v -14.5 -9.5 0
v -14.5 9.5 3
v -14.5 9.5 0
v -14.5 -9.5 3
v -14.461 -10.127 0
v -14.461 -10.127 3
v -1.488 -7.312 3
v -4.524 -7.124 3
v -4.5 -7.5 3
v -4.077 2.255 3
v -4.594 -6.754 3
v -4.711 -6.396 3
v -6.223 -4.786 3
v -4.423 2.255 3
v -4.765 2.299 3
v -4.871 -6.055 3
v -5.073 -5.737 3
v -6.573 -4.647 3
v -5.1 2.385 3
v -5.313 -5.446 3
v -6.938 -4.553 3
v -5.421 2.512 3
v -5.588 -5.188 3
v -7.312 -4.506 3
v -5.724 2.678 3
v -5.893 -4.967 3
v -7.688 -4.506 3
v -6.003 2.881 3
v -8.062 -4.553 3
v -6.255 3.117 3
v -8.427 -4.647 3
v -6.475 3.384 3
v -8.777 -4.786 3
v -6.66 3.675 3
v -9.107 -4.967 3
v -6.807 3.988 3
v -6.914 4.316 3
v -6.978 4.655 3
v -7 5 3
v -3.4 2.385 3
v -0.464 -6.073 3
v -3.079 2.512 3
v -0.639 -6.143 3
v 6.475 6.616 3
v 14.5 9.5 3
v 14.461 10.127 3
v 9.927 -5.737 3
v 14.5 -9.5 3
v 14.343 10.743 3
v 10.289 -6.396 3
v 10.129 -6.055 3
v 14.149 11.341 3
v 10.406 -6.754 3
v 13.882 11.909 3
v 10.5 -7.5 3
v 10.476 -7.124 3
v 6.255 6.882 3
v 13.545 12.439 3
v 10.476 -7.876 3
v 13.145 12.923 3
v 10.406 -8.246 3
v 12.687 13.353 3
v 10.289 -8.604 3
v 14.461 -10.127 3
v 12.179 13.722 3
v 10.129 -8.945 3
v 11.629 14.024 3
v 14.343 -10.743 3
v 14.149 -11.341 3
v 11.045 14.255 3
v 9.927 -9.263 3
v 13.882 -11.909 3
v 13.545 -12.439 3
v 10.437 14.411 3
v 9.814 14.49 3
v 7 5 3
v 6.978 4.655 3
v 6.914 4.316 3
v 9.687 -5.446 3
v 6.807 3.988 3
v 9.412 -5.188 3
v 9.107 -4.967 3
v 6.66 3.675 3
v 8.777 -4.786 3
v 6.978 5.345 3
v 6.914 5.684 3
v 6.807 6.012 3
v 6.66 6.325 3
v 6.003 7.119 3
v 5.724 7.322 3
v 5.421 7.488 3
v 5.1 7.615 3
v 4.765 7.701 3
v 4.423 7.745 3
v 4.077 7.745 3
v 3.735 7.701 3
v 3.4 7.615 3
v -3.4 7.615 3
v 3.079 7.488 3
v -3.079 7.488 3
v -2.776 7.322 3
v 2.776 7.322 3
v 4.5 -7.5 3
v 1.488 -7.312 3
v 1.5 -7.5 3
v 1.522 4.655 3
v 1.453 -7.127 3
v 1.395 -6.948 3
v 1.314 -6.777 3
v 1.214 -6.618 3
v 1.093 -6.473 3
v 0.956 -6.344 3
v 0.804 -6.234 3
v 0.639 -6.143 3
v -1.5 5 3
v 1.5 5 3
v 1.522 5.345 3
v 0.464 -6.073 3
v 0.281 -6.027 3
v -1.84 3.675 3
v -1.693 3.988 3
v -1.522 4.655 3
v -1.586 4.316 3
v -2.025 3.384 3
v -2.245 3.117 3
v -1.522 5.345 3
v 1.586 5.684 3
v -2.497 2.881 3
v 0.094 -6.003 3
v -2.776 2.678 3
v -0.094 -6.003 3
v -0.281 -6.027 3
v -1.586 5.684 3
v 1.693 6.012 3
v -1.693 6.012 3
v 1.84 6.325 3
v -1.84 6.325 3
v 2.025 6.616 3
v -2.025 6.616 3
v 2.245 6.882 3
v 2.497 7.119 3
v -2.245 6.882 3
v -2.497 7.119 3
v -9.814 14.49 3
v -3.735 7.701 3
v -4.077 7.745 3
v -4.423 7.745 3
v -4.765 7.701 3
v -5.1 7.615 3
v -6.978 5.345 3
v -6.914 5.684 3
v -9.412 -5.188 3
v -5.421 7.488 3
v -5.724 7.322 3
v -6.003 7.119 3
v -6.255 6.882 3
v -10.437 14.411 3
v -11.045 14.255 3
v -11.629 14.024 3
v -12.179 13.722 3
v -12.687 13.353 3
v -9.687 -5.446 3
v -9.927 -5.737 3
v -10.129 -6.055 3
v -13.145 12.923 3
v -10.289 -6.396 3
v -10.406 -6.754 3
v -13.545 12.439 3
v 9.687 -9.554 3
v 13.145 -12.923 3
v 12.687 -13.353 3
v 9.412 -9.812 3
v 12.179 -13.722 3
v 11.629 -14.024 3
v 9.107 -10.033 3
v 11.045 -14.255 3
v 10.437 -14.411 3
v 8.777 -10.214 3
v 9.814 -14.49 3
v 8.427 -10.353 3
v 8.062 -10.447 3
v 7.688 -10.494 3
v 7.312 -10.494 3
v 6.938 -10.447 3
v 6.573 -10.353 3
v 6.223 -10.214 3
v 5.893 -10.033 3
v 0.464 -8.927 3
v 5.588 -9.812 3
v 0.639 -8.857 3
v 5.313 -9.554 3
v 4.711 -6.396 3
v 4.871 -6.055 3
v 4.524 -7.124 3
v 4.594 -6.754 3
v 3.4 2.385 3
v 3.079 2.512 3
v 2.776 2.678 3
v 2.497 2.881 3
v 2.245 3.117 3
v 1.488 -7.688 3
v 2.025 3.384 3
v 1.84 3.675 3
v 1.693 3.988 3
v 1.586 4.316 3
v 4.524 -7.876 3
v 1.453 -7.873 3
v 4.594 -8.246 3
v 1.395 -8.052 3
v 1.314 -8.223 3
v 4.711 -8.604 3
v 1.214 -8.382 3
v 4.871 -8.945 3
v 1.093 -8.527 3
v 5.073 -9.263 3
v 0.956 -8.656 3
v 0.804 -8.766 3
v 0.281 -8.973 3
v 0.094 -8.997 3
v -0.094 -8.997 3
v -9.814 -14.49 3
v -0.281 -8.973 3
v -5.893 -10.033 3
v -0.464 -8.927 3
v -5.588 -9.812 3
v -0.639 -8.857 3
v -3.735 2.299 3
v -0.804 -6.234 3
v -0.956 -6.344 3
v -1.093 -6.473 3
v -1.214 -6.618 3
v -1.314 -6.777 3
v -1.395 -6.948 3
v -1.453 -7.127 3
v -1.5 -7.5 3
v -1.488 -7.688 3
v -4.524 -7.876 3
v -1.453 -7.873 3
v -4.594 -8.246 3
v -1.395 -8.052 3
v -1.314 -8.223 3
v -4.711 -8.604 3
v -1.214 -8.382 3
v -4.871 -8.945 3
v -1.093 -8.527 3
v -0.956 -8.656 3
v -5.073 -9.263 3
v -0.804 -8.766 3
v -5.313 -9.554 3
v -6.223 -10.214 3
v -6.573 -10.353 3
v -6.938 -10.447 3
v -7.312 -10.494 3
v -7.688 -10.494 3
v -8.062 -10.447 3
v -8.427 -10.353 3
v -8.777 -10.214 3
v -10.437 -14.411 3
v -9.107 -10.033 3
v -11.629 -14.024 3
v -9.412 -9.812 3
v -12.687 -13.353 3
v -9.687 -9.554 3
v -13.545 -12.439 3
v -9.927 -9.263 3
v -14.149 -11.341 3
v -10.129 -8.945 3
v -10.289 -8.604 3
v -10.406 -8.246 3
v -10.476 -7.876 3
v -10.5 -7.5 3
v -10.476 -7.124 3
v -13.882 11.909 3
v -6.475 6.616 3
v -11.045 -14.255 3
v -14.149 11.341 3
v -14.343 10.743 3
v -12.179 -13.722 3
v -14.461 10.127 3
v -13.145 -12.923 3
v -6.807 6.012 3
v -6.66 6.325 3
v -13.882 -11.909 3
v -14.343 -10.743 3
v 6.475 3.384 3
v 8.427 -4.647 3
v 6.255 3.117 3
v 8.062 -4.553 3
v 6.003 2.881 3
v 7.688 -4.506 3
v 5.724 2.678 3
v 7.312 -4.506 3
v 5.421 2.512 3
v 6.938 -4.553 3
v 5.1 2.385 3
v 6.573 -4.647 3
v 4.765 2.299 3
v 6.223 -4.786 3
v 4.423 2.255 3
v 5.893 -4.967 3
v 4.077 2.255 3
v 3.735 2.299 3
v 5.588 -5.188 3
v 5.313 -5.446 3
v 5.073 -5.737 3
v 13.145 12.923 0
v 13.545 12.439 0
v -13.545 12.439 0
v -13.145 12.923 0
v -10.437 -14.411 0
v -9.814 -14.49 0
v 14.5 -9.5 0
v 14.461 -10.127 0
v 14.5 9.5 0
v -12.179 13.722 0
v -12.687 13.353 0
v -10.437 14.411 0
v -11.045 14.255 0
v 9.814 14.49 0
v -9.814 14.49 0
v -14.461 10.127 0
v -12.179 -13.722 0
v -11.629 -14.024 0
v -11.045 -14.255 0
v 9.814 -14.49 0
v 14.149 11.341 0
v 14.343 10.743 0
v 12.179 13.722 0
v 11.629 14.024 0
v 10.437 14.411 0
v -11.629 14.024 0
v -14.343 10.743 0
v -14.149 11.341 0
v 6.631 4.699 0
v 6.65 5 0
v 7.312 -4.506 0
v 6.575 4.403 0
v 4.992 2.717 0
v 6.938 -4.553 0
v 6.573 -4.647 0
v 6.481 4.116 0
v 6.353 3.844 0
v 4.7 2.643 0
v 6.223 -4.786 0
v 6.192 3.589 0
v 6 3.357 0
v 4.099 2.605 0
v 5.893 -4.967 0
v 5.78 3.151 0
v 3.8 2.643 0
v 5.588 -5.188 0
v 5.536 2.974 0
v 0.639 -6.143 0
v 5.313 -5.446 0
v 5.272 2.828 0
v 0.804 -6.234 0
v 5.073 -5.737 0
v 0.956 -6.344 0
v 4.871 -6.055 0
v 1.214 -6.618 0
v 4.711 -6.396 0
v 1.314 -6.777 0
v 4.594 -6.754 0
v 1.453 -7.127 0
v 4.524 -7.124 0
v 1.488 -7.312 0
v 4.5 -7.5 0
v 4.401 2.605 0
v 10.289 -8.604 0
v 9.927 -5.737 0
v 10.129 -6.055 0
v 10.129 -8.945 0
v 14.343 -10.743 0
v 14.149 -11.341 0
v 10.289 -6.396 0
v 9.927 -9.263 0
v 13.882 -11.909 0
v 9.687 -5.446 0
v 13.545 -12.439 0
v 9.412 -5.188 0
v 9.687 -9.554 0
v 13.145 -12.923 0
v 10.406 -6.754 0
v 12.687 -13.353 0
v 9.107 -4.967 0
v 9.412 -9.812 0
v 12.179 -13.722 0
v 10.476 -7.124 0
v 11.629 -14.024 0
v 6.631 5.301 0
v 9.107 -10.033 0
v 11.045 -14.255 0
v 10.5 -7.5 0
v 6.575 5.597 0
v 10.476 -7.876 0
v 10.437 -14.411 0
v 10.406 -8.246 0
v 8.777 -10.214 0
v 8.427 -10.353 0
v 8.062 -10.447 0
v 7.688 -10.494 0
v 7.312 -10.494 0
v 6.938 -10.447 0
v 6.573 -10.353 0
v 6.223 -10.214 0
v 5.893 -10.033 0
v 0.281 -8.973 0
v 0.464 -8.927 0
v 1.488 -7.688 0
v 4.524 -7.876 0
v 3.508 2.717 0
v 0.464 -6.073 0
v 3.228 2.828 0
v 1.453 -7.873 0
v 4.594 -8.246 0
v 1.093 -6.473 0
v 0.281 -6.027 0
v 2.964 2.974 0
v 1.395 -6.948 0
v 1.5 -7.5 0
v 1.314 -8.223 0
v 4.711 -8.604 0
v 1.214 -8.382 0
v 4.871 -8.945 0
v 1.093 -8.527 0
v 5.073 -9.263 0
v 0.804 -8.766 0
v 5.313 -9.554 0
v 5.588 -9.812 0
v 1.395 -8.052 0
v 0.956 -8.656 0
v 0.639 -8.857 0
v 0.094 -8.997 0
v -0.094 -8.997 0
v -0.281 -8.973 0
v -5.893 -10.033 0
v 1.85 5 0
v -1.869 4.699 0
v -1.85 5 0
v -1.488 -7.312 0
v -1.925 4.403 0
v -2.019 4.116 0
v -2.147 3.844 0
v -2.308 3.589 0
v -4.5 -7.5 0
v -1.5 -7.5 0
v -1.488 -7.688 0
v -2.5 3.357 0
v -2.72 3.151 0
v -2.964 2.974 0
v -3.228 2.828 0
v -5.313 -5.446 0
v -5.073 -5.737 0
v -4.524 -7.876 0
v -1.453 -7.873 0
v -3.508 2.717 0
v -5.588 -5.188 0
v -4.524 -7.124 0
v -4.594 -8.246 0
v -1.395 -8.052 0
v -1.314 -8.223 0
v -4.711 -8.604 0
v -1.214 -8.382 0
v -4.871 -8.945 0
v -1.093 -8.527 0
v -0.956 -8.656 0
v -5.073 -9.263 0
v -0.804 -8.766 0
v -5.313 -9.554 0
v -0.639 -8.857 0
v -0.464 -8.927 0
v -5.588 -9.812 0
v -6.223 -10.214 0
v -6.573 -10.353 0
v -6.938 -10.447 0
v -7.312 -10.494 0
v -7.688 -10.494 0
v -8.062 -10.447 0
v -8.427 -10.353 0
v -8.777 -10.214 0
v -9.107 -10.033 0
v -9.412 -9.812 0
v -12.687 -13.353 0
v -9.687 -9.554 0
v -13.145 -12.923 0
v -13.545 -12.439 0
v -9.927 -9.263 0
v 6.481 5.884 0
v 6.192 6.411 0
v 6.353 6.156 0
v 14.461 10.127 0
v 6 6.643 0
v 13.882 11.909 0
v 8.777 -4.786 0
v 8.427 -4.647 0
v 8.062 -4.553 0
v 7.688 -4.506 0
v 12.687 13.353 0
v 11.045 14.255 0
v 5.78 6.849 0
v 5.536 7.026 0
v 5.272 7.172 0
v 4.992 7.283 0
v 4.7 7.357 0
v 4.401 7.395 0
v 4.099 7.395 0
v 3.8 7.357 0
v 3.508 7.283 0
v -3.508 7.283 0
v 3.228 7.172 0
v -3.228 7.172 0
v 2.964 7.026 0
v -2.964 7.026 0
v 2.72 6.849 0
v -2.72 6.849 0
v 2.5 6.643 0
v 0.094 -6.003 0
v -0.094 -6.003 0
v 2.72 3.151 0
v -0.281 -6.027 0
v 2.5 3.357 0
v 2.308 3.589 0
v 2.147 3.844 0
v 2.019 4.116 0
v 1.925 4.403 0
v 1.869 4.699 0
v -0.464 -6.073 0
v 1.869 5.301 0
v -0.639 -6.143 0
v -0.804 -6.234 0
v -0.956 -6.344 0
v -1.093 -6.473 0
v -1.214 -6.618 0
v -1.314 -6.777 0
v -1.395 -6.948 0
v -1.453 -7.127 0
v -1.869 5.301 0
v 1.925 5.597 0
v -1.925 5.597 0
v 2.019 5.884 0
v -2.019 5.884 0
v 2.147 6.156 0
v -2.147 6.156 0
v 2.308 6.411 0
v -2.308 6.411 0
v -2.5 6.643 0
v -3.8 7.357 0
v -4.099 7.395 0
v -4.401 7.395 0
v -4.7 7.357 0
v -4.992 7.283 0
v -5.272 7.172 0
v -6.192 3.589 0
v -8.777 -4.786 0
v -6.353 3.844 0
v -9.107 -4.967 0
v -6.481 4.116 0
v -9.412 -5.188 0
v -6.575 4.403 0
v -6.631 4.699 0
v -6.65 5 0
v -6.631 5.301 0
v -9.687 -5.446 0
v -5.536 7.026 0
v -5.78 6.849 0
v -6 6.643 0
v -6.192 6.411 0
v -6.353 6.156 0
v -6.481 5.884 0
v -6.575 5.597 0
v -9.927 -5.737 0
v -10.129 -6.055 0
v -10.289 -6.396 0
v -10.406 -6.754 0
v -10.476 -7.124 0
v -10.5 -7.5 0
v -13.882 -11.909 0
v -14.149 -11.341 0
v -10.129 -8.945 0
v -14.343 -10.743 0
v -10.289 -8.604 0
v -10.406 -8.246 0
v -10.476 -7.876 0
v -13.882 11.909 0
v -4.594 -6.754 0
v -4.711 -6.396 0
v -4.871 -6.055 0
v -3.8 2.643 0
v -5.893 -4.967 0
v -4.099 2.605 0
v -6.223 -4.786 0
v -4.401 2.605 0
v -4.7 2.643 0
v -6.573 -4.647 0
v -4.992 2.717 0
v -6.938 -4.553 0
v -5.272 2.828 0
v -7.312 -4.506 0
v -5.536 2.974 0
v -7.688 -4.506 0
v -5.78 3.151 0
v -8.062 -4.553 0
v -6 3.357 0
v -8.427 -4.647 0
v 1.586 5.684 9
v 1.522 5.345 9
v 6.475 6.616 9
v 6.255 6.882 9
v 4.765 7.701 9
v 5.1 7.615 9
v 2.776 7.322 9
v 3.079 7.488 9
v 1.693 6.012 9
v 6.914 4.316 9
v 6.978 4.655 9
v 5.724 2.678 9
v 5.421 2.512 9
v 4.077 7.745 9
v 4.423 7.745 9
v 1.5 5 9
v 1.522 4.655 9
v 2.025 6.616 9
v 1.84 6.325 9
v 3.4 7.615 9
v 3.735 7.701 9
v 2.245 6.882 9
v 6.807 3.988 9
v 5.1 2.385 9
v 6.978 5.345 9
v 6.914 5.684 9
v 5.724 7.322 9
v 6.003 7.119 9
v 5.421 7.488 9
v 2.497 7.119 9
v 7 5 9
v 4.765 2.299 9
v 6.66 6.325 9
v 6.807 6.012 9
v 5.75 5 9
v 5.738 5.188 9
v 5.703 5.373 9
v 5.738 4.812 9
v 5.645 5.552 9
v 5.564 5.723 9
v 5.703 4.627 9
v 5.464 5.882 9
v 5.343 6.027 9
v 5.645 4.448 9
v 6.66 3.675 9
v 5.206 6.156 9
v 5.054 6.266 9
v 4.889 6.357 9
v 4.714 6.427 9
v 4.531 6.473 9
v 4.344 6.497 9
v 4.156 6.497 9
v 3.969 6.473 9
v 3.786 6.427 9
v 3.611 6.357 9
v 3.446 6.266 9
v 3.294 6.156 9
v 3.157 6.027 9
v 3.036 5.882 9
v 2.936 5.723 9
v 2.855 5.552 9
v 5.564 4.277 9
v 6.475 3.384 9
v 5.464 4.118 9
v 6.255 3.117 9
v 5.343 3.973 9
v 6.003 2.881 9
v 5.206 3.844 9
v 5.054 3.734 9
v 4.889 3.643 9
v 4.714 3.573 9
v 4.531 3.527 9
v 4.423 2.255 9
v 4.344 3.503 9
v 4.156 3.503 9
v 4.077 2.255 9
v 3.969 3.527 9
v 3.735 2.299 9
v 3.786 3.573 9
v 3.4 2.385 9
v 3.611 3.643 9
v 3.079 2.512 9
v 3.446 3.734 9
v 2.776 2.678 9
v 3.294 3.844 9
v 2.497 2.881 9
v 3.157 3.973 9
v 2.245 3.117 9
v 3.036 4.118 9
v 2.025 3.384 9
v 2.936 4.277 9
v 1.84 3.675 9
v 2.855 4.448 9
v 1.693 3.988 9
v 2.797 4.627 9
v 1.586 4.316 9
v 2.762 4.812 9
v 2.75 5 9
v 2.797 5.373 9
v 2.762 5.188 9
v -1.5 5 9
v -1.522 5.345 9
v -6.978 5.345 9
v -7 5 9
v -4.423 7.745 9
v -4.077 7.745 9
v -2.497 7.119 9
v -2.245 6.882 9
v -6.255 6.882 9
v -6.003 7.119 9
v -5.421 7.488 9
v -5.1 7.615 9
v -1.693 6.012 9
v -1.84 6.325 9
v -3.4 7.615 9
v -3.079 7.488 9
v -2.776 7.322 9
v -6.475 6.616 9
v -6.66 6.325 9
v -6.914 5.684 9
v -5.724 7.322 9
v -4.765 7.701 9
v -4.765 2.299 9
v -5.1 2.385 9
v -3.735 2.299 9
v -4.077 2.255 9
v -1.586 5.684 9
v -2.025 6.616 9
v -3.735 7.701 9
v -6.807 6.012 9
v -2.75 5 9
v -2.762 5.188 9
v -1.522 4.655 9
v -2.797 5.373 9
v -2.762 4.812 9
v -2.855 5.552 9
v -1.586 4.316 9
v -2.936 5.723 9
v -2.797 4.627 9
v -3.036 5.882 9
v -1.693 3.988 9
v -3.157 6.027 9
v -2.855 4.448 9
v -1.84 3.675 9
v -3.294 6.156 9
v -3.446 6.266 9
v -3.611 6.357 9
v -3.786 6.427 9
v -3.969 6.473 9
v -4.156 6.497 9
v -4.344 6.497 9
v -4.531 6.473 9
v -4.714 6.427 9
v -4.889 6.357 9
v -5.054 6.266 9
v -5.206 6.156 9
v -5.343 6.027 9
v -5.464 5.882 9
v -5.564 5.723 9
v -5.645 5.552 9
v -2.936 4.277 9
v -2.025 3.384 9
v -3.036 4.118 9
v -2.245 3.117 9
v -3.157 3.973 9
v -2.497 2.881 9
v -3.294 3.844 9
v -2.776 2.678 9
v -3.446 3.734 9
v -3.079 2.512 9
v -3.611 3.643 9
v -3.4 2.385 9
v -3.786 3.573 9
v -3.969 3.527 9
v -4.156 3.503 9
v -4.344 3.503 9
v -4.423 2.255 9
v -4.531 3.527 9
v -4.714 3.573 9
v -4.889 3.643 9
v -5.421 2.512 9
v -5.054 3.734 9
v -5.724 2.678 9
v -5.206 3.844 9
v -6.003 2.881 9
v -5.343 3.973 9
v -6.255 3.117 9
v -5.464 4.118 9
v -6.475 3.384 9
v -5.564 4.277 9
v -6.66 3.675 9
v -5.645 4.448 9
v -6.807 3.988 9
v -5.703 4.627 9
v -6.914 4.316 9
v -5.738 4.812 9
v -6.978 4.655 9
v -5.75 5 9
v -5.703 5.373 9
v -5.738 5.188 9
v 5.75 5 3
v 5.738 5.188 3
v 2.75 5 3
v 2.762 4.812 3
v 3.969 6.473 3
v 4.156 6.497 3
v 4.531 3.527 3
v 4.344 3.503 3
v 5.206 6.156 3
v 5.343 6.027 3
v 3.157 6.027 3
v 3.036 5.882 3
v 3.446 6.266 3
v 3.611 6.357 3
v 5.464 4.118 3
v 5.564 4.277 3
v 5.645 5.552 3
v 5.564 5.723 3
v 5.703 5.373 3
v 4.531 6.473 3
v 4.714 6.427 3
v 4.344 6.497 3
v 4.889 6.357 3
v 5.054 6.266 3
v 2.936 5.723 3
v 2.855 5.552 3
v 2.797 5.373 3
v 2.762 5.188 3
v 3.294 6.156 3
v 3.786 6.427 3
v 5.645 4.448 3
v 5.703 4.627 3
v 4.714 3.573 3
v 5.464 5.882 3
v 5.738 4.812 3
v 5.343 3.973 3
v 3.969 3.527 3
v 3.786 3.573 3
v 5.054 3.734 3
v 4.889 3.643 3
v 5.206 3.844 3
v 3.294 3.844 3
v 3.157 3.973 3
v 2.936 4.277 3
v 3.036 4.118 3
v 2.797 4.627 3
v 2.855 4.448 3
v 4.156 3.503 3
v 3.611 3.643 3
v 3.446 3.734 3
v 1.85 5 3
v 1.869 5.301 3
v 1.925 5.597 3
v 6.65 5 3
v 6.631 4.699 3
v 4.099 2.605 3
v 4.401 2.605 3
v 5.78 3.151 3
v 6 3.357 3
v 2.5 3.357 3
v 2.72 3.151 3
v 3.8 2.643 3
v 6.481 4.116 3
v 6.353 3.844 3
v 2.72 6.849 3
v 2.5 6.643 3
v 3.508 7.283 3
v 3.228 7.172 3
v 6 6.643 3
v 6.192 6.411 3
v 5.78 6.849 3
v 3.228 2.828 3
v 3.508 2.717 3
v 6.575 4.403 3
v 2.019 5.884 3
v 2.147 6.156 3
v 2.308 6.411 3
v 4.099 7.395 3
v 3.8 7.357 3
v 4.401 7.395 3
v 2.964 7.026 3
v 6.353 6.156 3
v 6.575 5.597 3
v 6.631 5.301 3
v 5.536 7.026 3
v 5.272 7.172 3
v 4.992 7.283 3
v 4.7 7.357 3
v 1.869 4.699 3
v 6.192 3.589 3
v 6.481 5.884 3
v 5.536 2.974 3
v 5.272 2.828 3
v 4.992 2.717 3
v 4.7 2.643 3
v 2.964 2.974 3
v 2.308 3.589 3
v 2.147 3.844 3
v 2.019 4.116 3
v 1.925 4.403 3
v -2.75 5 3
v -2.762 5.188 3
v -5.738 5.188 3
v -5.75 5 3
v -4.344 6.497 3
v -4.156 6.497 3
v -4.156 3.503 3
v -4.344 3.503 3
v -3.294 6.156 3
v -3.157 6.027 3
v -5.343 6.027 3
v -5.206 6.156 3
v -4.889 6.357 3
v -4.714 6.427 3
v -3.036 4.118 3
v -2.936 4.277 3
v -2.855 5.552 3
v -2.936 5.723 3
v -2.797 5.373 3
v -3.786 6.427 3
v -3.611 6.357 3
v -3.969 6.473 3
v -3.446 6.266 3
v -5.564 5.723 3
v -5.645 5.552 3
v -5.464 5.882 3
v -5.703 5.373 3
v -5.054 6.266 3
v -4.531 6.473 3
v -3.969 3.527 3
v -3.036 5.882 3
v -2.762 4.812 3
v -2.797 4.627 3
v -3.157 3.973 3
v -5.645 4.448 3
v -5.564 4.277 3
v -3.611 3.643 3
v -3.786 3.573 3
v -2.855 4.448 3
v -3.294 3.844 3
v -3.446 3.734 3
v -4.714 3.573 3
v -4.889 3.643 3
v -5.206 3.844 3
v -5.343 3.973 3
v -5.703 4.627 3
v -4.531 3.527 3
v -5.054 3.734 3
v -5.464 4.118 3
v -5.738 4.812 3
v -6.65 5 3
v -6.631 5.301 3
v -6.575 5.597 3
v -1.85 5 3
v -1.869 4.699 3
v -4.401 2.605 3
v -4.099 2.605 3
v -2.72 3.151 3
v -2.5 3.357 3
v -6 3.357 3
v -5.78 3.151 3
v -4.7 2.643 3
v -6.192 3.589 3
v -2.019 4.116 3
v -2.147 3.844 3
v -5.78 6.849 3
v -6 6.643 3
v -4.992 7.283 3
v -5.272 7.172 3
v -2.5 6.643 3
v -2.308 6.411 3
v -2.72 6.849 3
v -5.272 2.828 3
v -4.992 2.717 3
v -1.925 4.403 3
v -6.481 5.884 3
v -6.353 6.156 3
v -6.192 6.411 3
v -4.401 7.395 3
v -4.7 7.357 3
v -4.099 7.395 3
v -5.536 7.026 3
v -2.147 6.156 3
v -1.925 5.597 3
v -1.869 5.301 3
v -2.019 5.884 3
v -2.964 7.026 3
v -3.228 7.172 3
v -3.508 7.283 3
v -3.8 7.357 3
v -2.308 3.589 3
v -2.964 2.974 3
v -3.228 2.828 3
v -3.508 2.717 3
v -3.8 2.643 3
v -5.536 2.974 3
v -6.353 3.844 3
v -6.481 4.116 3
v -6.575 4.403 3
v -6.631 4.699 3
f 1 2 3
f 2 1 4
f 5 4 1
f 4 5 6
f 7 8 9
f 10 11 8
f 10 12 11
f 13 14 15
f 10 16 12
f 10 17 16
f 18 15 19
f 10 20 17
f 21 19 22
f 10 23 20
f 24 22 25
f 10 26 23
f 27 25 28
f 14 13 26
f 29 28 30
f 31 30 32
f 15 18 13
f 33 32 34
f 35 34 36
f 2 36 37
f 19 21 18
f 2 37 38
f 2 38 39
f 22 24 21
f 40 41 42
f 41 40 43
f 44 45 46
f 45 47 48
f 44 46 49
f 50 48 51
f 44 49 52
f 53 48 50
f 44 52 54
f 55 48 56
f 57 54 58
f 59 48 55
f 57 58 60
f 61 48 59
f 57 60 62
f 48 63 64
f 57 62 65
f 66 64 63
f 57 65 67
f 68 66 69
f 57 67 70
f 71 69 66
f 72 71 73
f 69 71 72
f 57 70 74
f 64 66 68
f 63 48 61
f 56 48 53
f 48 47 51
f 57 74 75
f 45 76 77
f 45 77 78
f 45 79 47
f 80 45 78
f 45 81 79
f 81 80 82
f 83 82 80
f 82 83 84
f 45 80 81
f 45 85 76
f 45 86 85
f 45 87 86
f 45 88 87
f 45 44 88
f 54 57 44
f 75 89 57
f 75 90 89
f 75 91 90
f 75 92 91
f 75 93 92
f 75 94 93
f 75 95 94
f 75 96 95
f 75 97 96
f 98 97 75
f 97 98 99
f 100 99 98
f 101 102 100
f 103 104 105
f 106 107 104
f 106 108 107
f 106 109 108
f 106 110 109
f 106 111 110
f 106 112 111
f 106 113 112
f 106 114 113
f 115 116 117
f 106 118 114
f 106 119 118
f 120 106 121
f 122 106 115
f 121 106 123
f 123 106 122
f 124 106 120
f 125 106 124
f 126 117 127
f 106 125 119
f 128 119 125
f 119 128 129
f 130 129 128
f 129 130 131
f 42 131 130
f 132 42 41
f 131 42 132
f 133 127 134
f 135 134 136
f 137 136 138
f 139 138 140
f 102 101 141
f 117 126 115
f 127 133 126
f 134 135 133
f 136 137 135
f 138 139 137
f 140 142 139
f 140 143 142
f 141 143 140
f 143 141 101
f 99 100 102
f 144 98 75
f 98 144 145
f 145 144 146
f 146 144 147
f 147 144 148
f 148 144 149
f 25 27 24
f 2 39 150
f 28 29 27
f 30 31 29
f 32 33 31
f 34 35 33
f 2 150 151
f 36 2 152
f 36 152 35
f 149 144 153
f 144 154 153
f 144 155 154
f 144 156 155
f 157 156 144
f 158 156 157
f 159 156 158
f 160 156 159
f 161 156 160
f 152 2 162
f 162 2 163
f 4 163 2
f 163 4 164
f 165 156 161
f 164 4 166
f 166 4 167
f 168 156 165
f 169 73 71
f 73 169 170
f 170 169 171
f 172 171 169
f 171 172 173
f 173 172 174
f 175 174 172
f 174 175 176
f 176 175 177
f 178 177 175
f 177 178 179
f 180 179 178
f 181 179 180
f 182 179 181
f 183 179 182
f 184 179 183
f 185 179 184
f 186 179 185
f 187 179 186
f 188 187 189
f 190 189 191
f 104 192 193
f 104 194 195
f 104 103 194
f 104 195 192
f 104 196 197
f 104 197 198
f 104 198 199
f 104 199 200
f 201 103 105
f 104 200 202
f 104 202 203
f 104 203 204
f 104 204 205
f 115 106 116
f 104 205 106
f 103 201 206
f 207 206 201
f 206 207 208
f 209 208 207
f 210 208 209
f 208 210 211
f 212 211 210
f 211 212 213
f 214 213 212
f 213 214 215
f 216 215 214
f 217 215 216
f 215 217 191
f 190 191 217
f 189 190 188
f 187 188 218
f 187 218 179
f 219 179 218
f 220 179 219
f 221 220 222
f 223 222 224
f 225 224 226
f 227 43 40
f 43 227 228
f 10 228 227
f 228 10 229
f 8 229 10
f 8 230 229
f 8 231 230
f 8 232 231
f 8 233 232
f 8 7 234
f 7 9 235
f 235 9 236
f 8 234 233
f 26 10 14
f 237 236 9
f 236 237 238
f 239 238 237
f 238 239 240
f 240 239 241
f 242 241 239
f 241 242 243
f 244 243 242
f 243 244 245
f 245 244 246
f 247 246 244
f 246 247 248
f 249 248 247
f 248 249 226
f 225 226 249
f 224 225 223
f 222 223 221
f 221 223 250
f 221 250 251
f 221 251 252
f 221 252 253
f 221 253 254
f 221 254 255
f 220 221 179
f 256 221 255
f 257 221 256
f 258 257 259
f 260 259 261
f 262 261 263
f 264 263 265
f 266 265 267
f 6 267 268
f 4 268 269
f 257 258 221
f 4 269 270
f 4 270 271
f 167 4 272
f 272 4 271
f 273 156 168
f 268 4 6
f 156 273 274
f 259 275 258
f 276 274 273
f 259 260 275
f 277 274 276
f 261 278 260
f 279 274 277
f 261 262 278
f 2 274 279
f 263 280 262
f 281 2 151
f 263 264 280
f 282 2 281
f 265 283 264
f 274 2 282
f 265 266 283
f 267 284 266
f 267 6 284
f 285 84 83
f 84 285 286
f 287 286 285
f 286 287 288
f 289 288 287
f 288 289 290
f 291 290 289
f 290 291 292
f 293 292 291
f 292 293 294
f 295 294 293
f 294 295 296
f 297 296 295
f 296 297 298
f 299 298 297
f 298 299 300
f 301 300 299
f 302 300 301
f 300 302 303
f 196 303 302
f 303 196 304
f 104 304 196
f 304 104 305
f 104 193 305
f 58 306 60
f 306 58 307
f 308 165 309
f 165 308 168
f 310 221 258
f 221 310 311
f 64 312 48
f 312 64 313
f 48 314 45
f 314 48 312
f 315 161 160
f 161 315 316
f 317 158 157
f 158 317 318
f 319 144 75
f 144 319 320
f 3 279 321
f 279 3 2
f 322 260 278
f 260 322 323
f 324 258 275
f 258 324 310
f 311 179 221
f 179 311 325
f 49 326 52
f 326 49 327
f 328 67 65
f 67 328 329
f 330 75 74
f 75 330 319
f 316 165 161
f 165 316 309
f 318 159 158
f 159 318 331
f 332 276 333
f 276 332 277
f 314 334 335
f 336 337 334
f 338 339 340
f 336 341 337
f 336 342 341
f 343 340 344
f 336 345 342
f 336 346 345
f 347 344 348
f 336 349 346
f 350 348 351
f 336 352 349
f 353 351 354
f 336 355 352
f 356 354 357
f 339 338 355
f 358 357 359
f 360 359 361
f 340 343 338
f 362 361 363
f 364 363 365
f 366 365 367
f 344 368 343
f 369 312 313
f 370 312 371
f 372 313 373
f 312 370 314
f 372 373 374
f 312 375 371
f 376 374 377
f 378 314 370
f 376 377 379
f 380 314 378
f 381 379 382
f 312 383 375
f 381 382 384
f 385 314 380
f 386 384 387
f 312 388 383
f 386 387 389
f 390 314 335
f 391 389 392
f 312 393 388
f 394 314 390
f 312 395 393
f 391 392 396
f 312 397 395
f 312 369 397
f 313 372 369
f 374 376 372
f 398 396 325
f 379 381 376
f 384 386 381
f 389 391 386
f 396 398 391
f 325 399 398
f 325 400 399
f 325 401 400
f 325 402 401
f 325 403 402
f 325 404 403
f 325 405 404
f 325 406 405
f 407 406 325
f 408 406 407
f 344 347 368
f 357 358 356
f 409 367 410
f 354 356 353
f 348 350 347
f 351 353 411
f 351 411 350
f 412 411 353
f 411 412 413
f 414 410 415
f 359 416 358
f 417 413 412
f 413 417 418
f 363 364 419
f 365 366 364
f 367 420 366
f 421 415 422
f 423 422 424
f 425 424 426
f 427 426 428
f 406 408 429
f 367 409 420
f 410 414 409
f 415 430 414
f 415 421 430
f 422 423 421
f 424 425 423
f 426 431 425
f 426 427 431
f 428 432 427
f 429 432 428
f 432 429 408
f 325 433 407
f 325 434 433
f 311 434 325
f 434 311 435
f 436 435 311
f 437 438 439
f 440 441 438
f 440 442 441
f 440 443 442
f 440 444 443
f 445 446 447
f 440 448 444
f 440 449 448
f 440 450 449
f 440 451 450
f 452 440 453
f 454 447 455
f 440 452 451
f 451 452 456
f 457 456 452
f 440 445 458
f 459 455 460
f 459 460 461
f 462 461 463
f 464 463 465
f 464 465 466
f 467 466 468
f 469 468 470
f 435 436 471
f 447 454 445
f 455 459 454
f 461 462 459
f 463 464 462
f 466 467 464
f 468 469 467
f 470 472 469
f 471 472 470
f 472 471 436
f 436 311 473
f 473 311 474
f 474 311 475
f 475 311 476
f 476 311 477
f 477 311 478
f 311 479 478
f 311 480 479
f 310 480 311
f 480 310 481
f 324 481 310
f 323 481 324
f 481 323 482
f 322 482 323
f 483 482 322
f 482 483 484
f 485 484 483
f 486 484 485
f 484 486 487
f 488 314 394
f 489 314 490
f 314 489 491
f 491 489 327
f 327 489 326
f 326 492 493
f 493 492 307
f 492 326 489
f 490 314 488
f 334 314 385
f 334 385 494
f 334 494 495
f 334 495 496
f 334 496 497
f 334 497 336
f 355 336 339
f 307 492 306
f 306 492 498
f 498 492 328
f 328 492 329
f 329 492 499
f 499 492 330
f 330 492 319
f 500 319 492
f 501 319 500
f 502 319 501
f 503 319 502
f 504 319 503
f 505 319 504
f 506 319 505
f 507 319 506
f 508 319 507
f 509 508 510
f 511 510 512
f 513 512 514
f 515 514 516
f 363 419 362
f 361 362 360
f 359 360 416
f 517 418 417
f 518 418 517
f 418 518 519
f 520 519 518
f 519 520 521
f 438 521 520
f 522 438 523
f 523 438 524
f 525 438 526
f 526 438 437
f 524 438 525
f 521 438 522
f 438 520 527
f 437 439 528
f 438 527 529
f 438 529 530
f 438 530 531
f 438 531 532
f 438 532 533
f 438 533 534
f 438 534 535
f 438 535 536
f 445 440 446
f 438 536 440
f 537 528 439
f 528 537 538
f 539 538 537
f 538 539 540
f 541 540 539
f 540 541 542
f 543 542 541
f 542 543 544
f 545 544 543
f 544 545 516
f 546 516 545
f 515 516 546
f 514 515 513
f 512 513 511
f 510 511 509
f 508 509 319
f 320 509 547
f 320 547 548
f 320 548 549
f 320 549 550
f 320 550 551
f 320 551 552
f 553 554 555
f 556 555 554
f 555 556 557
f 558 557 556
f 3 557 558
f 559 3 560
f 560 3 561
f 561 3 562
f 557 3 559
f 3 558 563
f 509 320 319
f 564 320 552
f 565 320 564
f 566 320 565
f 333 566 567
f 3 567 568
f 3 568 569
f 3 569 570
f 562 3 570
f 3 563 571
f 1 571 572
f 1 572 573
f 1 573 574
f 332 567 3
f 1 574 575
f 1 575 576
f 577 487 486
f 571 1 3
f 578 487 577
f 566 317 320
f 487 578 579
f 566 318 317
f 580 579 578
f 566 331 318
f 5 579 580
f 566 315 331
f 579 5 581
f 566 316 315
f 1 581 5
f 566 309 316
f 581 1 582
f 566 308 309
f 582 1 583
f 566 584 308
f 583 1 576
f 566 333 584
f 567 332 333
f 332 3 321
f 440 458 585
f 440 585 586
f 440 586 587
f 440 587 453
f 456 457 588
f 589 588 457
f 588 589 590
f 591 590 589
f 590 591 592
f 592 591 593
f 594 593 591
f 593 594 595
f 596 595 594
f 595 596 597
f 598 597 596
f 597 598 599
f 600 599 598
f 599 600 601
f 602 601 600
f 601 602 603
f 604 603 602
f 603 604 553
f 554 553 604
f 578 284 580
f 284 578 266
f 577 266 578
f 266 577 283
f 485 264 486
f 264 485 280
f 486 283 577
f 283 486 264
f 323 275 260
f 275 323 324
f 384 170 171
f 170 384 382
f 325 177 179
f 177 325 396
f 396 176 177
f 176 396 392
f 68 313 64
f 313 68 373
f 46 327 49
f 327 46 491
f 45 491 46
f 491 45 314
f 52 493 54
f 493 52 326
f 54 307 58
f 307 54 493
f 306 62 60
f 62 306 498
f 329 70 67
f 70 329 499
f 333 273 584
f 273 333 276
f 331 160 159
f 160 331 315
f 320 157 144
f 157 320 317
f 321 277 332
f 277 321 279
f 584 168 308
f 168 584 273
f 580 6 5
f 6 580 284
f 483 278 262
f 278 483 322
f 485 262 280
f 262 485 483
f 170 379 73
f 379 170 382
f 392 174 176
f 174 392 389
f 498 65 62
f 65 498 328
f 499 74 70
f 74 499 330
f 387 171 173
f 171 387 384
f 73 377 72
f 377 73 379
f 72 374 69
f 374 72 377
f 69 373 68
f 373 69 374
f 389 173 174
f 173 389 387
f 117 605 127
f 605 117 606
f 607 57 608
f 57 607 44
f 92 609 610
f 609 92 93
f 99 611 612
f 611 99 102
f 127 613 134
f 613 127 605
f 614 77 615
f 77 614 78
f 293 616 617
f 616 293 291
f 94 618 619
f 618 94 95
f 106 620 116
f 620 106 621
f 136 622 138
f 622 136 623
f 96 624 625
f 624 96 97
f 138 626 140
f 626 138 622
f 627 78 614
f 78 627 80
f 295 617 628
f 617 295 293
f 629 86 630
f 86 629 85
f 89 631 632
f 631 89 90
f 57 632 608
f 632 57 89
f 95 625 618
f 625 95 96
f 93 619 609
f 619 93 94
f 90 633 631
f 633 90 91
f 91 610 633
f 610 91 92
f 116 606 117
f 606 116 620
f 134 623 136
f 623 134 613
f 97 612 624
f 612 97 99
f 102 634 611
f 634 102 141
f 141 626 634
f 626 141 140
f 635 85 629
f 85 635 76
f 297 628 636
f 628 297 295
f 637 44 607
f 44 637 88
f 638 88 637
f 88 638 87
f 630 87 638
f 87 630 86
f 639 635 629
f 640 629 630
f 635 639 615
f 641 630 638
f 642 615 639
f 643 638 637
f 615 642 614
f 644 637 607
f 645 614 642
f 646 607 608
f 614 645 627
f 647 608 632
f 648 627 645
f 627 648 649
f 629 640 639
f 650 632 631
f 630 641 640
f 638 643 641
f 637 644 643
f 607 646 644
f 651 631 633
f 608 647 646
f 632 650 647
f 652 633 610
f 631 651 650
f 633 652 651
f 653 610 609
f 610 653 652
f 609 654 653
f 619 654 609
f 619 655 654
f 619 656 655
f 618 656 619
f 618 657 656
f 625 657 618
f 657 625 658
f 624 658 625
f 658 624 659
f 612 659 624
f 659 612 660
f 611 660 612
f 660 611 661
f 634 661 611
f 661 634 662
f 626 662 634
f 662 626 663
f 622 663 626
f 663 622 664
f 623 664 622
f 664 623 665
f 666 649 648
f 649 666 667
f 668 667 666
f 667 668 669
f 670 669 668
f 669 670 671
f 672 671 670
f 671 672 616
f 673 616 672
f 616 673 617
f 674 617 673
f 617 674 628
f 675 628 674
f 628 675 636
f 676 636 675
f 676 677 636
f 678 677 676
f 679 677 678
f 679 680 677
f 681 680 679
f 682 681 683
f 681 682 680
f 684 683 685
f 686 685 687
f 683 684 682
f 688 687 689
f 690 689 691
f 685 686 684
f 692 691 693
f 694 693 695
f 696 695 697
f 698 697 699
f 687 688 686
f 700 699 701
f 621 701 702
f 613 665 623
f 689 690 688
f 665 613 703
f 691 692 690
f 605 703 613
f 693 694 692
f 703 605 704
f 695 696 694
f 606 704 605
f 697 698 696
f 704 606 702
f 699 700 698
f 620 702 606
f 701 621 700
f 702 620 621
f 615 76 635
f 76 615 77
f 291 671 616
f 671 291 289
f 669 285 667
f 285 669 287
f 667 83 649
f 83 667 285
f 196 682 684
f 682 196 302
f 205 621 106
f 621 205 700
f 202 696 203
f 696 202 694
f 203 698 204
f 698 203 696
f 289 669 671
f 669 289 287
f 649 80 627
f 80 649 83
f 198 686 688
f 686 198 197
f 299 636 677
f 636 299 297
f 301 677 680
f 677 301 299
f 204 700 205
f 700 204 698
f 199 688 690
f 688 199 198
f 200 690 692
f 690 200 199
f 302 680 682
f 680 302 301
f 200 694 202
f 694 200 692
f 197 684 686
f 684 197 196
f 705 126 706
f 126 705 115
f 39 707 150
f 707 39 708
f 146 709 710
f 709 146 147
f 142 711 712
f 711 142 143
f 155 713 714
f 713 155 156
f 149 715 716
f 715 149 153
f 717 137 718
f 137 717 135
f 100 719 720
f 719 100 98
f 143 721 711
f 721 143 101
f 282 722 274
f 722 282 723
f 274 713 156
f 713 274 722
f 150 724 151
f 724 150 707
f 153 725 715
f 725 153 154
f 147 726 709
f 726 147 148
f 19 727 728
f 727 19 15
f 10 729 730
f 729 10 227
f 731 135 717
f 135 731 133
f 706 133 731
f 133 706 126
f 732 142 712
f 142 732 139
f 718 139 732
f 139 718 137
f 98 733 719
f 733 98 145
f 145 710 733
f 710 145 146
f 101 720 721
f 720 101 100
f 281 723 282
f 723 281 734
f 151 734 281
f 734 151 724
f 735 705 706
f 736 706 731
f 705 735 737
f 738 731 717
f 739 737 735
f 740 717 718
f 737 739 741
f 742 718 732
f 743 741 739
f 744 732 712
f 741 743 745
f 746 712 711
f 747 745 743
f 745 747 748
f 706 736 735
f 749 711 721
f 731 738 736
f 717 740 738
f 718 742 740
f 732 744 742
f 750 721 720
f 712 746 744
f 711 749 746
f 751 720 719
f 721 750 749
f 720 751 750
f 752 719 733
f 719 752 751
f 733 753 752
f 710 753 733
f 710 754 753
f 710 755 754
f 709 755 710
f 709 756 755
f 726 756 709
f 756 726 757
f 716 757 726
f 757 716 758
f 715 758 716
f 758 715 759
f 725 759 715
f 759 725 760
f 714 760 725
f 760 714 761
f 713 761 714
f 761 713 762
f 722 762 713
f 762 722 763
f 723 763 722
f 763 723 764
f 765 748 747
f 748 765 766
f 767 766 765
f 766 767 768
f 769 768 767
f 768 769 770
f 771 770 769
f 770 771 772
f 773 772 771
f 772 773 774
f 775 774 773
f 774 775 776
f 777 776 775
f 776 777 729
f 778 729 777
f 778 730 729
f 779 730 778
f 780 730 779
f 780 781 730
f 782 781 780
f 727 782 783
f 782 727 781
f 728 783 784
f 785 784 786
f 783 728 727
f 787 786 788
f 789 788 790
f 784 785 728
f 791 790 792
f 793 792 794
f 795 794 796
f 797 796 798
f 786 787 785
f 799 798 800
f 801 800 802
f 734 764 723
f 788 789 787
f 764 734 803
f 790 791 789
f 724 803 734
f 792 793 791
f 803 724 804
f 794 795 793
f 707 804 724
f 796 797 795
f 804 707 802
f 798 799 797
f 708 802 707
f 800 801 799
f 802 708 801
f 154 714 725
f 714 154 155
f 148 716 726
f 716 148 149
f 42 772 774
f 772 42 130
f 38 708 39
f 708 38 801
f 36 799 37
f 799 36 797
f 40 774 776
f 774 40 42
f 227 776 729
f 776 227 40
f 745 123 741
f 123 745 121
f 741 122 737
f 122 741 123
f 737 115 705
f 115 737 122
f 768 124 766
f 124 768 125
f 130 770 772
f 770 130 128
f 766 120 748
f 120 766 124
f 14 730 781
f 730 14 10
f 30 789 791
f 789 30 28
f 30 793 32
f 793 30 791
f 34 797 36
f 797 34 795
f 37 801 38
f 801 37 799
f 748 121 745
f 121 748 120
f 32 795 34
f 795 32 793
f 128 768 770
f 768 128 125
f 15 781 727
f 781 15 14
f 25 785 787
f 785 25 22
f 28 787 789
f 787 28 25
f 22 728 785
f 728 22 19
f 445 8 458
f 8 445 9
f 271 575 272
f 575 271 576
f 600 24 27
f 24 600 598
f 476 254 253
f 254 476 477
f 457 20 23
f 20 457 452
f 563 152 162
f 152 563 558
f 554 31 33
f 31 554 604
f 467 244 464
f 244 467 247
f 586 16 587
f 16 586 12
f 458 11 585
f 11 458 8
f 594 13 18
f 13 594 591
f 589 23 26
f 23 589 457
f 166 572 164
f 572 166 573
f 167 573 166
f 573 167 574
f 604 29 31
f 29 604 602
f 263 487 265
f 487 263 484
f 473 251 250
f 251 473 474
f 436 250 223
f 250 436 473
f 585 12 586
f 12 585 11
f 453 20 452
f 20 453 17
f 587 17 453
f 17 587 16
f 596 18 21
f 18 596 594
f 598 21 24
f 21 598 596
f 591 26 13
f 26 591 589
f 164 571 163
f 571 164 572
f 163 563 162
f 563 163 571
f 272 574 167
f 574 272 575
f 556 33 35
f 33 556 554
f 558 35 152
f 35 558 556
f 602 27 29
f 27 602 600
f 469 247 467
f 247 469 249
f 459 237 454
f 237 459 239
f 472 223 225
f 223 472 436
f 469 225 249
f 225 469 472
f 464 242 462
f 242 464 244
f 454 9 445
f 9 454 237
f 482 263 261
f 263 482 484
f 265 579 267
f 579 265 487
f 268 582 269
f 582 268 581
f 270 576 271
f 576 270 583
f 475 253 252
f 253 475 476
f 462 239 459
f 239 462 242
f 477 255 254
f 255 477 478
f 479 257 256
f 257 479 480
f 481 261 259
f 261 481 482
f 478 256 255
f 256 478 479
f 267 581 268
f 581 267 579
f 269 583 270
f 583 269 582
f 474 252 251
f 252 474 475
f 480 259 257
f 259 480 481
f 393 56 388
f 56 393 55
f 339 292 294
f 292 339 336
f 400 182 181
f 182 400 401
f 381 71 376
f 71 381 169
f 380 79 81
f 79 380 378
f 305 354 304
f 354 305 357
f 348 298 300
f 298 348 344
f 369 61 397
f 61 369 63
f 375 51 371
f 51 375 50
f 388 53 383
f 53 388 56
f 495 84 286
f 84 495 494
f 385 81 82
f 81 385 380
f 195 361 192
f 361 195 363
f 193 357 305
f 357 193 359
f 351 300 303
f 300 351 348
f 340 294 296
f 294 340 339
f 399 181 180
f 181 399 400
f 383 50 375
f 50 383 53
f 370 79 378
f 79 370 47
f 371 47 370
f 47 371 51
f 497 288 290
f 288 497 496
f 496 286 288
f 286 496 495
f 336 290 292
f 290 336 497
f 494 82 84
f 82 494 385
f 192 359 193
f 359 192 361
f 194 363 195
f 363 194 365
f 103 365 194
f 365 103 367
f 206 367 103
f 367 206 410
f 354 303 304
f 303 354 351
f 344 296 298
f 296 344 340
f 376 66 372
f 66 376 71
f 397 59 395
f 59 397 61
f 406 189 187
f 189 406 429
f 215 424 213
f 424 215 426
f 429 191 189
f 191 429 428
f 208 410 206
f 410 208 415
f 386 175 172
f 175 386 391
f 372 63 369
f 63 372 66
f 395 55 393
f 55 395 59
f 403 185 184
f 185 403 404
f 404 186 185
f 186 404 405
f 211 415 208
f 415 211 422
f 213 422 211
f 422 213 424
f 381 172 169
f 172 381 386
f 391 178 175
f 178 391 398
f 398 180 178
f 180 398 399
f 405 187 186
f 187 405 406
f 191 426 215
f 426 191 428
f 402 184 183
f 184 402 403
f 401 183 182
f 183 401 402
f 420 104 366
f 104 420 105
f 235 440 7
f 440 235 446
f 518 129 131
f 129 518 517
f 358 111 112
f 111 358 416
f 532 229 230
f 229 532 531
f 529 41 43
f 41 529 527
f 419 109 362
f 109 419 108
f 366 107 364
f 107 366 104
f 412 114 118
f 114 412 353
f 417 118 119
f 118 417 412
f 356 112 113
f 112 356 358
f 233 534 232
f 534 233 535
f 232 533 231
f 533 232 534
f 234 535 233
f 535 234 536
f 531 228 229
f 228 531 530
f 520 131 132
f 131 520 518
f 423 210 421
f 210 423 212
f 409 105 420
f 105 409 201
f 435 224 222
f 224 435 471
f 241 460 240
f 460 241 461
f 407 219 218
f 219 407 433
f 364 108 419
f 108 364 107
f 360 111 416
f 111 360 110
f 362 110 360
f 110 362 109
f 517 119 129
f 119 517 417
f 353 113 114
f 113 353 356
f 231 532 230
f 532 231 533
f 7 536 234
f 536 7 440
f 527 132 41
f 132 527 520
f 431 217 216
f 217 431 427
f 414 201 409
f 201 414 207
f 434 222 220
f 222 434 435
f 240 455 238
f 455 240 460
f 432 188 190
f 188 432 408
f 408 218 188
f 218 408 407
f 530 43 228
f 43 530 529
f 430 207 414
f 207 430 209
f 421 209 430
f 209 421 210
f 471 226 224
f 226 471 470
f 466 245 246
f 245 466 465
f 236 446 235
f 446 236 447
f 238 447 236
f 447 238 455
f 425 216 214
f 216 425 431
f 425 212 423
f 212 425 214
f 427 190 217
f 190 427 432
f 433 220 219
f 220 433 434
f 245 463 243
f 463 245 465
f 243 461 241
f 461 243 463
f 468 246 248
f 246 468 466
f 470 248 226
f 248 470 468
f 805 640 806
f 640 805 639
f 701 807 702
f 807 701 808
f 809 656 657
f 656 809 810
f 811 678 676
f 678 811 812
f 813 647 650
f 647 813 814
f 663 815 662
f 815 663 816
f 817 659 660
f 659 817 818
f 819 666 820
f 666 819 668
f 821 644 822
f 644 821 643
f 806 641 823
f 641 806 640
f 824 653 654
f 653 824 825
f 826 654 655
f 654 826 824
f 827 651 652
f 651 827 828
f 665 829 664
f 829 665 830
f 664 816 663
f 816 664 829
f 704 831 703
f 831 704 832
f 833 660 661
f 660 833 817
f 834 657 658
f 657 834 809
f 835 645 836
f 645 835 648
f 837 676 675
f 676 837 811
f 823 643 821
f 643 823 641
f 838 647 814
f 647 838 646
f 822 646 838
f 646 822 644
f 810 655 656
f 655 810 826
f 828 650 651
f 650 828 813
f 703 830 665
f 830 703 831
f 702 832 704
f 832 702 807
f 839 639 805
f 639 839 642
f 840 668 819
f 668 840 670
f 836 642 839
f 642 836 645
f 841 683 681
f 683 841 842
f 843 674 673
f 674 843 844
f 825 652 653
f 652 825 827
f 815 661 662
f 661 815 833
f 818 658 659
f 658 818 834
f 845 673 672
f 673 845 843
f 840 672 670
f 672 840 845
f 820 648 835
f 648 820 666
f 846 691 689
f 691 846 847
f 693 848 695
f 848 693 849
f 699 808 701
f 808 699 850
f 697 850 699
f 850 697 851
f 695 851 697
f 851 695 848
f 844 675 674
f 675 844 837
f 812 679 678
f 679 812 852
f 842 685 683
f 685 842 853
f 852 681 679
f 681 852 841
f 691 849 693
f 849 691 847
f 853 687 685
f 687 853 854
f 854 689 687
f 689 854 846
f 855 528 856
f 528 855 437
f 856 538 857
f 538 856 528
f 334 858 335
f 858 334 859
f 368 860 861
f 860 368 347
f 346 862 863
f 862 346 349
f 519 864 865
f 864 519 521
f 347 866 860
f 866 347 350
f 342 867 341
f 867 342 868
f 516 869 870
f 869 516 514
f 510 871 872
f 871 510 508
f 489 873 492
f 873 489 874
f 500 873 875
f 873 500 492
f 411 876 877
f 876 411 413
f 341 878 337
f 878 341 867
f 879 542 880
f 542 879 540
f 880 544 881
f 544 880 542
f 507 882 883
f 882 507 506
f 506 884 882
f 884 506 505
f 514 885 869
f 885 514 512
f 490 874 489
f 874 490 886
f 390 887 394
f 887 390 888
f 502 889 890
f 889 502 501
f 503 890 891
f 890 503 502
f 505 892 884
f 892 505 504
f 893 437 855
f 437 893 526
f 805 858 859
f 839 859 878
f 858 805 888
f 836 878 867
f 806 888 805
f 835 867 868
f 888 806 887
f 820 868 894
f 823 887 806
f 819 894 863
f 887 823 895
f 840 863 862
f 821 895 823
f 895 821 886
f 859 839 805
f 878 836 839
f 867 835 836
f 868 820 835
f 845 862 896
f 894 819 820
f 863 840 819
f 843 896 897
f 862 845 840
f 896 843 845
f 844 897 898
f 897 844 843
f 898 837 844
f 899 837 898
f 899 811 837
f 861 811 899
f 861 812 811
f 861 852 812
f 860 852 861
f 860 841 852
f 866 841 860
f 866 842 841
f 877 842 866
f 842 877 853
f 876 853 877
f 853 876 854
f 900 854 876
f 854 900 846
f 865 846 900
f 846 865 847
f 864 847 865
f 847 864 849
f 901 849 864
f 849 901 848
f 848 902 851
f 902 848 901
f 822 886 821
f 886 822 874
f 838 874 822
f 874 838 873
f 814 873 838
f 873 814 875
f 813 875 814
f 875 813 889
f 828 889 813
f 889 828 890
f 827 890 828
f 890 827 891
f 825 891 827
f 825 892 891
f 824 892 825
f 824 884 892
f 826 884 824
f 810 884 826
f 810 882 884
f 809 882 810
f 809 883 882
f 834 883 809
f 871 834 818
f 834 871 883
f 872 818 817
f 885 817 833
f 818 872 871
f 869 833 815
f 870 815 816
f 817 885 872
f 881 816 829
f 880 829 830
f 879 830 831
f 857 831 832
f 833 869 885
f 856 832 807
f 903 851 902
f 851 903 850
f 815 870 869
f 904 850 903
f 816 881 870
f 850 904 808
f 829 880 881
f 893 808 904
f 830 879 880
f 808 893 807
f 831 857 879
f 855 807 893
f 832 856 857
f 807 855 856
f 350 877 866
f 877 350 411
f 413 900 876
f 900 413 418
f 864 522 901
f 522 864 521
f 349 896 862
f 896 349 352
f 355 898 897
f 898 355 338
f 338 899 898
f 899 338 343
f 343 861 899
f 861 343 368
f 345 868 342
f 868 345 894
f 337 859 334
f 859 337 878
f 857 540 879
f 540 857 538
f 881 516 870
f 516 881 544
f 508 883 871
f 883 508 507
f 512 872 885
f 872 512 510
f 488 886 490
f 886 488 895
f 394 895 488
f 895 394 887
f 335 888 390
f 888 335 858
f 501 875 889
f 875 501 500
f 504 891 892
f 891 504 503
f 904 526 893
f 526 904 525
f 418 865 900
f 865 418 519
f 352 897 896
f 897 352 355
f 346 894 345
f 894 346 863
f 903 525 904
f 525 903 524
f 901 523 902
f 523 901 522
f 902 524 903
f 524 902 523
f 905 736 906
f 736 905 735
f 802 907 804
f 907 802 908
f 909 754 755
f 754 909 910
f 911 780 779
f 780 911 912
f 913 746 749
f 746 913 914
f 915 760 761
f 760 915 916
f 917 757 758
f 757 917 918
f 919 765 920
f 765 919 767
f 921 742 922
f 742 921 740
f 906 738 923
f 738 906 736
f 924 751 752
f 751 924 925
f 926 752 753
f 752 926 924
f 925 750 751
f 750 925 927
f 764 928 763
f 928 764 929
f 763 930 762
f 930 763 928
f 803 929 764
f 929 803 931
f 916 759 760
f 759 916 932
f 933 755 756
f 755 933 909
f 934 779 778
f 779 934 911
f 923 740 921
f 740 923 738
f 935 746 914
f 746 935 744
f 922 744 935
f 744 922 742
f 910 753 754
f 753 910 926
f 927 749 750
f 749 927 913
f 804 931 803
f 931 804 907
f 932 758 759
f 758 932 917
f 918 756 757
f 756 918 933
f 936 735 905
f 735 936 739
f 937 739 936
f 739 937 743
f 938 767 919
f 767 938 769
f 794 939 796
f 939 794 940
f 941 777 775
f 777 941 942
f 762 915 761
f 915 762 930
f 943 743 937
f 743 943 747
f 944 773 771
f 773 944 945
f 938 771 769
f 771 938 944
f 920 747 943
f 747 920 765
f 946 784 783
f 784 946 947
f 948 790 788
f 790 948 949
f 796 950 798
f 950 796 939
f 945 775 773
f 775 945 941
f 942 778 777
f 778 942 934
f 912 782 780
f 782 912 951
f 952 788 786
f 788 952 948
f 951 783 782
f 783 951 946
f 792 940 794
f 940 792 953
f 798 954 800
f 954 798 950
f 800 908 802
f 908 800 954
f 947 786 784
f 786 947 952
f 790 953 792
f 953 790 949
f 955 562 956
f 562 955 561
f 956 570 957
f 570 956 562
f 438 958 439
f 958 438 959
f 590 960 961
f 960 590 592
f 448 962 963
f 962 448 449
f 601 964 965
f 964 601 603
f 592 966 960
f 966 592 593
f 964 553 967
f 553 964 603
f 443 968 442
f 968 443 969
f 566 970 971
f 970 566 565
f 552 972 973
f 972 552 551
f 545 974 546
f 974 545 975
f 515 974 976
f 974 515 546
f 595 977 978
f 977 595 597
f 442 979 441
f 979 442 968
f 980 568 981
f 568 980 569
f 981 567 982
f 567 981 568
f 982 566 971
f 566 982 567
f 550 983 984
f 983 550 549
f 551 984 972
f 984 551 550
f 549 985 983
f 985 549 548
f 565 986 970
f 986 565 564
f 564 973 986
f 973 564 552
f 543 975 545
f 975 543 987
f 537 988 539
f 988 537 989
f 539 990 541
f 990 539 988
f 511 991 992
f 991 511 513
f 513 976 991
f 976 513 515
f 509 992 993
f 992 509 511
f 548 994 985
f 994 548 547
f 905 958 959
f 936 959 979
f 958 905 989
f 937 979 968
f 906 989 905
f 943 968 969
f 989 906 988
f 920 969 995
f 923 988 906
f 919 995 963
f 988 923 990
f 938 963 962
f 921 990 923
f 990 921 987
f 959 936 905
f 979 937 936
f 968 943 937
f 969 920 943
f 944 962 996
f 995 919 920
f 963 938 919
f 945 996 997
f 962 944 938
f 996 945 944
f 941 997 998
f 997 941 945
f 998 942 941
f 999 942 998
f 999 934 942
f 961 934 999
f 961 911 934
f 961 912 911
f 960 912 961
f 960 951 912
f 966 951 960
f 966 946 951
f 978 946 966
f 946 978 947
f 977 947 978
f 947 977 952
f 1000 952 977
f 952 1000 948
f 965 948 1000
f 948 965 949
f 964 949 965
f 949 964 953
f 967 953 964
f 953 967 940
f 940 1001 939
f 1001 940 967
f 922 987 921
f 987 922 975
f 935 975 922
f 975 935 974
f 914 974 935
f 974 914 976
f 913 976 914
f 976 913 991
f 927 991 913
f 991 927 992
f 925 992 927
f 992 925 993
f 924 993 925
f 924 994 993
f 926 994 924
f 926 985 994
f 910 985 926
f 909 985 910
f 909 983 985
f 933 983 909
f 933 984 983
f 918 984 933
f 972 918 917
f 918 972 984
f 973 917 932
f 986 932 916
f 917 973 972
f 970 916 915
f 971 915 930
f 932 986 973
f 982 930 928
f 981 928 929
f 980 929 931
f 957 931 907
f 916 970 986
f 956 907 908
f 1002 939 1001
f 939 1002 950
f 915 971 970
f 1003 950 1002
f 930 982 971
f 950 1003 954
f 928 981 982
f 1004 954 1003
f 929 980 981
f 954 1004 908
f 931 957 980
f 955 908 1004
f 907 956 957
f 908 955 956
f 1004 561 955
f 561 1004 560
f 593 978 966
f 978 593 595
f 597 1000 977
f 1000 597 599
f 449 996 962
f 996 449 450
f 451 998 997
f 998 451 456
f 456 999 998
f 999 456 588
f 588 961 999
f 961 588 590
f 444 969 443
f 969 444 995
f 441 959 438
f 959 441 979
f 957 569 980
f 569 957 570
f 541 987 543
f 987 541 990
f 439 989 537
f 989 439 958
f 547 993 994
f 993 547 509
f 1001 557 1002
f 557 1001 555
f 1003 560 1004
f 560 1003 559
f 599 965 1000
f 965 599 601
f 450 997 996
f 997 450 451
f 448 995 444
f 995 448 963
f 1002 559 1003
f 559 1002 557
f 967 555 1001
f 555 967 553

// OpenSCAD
$fn = 50;


difference() {
	union() {
		translate(v = [0, 0, 0]) {
			rotate(a = [0, 0, 0]) {
				hull() {
					translate(v = [-9.5000000000, 9.5000000000, 0]) {
						rotate(a = [0, 0, 0]) {
							translate(v = [0, 0, 0]) {
								rotate(a = [0, 0, 0]) {
									cylinder(h = 3, r = 5);
								}
							}
						}
					}
					translate(v = [9.5000000000, 9.5000000000, 0]) {
						rotate(a = [0, 0, 0]) {
							translate(v = [0, 0, 0]) {
								rotate(a = [0, 0, 0]) {
									cylinder(h = 3, r = 5);
								}
							}
						}
					}
					translate(v = [-9.5000000000, -9.5000000000, 0]) {
						rotate(a = [0, 0, 0]) {
							translate(v = [0, 0, 0]) {
								rotate(a = [0, 0, 0]) {
									cylinder(h = 3, r = 5);
								}
							}
						}
					}
					translate(v = [9.5000000000, -9.5000000000, 0]) {
						rotate(a = [0, 0, 0]) {
							translate(v = [0, 0, 0]) {
								rotate(a = [0, 0, 0]) {
									cylinder(h = 3, r = 5);
								}
							}
						}
					}
				}
			}
		}
		translate(v = [4.2500000000, 5.0000000000, 0]) {
			rotate(a = [0, 0, 0]) {
				cylinder(h = 9, r = 2.7500000000);
			}
		}
		translate(v = [-4.2500000000, 5.0000000000, 0]) {
			rotate(a = [0, 0, 0]) {
				cylinder(h = 9, r = 2.7500000000);
			}
		}
	}
	union() {
		translate(v = [-7.5000000000, -7.5000000000, -125.0000000000]) {
			rotate(a = [0, 0, 0]) {
				cylinder(h = 250, r = 3.0000000000);
			}
		}
		translate(v = [7.5000000000, -7.5000000000, -125.0000000000]) {
			rotate(a = [0, 0, 0]) {
				cylinder(h = 250, r = 3.0000000000);
			}
		}
		translate(v = [-7.5000000000, -7.5000000000, -125.0000000000]) {
			rotate(a = [0, 0, 0]) {
				cylinder(h = 250, r = 1.5000000000);
			}
		}
		translate(v = [0.0000000000, -7.5000000000, -125.0000000000]) {
			rotate(a = [0, 0, 0]) {
				cylinder(h = 250, r = 1.5000000000);
			}
		}
		translate(v = [7.5000000000, -7.5000000000, -125.0000000000]) {
			rotate(a = [0, 0, 0]) {
				cylinder(h = 250, r = 1.5000000000);
			}
		}
		translate(v = [-7.5000000000, -7.5000000000, -125.0000000000]) {
			rotate(a = [0, 0, 0]) {
				cylinder(h = 250, r = 1.5000000000);
			}
		}
		translate(v = [0.0000000000, -7.5000000000, -125.0000000000]) {
			rotate(a = [0, 0, 0]) {
				cylinder(h = 250, r = 1.5000000000);
			}
		}
		translate(v = [7.5000000000, -7.5000000000, -125.0000000000]) {
			rotate(a = [0, 0, 0]) {
				cylinder(h = 250, r = 1.5000000000);
			}
		}
		translate(v = [-7.5000000000, -7.5000000000, -125.0000000000]) {
			rotate(a = [0, 0, 0]) {
				cylinder(h = 250, r = 1.5000000000);
			}
		}
		translate(v = [0.0000000000, -7.5000000000, -125.0000000000]) {
			rotate(a = [0, 0, 0]) {
				cylinder(h = 250, r = 1.5000000000);
			}
		}
		translate(v = [7.5000000000, -7.5000000000, -125.0000000000]) {
			rotate(a = [0, 0, 0]) {
				cylinder(h = 250, r = 1.5000000000);
			}
		}
		translate(v = [4.2500000000, 5.0000000000, -125.0000000000]) {
			rotate(a = [0, 0, 0]) {
				cylinder(h = 250, r = 1.5000000000);
			}
		}
		translate(v = [4.2500000000, 5.0000000000, 3]) {
			rotate(a = [0, 180, 0]) {
				cylinder(h = 3, r1 = 2.4000000000, r2 = 2.4000000000);
			}
		}
		translate(v = [4.2500000000, 5.0000000000, 9]) {
			rotate(a = [0, 180, 0]) {
				cylinder(h = 9, r = 1.5000000000);
			}
		}
		translate(v = [-4.2500000000, 5.0000000000, -125.0000000000]) {
			rotate(a = [0, 0, 0]) {
				cylinder(h = 250, r = 1.5000000000);
			}
		}
		translate(v = [-4.2500000000, 5.0000000000, 3]) {
			rotate(a = [0, 180, 0]) {
				cylinder(h = 3, r1 = 2.4000000000, r2 = 2.4000000000);
			}
		}
		translate(v = [-4.2500000000, 5.0000000000, 9]) {
			rotate(a = [0, 180, 0]) {
				cylinder(h = 9, r = 1.5000000000);
			}
		}
	}
}
